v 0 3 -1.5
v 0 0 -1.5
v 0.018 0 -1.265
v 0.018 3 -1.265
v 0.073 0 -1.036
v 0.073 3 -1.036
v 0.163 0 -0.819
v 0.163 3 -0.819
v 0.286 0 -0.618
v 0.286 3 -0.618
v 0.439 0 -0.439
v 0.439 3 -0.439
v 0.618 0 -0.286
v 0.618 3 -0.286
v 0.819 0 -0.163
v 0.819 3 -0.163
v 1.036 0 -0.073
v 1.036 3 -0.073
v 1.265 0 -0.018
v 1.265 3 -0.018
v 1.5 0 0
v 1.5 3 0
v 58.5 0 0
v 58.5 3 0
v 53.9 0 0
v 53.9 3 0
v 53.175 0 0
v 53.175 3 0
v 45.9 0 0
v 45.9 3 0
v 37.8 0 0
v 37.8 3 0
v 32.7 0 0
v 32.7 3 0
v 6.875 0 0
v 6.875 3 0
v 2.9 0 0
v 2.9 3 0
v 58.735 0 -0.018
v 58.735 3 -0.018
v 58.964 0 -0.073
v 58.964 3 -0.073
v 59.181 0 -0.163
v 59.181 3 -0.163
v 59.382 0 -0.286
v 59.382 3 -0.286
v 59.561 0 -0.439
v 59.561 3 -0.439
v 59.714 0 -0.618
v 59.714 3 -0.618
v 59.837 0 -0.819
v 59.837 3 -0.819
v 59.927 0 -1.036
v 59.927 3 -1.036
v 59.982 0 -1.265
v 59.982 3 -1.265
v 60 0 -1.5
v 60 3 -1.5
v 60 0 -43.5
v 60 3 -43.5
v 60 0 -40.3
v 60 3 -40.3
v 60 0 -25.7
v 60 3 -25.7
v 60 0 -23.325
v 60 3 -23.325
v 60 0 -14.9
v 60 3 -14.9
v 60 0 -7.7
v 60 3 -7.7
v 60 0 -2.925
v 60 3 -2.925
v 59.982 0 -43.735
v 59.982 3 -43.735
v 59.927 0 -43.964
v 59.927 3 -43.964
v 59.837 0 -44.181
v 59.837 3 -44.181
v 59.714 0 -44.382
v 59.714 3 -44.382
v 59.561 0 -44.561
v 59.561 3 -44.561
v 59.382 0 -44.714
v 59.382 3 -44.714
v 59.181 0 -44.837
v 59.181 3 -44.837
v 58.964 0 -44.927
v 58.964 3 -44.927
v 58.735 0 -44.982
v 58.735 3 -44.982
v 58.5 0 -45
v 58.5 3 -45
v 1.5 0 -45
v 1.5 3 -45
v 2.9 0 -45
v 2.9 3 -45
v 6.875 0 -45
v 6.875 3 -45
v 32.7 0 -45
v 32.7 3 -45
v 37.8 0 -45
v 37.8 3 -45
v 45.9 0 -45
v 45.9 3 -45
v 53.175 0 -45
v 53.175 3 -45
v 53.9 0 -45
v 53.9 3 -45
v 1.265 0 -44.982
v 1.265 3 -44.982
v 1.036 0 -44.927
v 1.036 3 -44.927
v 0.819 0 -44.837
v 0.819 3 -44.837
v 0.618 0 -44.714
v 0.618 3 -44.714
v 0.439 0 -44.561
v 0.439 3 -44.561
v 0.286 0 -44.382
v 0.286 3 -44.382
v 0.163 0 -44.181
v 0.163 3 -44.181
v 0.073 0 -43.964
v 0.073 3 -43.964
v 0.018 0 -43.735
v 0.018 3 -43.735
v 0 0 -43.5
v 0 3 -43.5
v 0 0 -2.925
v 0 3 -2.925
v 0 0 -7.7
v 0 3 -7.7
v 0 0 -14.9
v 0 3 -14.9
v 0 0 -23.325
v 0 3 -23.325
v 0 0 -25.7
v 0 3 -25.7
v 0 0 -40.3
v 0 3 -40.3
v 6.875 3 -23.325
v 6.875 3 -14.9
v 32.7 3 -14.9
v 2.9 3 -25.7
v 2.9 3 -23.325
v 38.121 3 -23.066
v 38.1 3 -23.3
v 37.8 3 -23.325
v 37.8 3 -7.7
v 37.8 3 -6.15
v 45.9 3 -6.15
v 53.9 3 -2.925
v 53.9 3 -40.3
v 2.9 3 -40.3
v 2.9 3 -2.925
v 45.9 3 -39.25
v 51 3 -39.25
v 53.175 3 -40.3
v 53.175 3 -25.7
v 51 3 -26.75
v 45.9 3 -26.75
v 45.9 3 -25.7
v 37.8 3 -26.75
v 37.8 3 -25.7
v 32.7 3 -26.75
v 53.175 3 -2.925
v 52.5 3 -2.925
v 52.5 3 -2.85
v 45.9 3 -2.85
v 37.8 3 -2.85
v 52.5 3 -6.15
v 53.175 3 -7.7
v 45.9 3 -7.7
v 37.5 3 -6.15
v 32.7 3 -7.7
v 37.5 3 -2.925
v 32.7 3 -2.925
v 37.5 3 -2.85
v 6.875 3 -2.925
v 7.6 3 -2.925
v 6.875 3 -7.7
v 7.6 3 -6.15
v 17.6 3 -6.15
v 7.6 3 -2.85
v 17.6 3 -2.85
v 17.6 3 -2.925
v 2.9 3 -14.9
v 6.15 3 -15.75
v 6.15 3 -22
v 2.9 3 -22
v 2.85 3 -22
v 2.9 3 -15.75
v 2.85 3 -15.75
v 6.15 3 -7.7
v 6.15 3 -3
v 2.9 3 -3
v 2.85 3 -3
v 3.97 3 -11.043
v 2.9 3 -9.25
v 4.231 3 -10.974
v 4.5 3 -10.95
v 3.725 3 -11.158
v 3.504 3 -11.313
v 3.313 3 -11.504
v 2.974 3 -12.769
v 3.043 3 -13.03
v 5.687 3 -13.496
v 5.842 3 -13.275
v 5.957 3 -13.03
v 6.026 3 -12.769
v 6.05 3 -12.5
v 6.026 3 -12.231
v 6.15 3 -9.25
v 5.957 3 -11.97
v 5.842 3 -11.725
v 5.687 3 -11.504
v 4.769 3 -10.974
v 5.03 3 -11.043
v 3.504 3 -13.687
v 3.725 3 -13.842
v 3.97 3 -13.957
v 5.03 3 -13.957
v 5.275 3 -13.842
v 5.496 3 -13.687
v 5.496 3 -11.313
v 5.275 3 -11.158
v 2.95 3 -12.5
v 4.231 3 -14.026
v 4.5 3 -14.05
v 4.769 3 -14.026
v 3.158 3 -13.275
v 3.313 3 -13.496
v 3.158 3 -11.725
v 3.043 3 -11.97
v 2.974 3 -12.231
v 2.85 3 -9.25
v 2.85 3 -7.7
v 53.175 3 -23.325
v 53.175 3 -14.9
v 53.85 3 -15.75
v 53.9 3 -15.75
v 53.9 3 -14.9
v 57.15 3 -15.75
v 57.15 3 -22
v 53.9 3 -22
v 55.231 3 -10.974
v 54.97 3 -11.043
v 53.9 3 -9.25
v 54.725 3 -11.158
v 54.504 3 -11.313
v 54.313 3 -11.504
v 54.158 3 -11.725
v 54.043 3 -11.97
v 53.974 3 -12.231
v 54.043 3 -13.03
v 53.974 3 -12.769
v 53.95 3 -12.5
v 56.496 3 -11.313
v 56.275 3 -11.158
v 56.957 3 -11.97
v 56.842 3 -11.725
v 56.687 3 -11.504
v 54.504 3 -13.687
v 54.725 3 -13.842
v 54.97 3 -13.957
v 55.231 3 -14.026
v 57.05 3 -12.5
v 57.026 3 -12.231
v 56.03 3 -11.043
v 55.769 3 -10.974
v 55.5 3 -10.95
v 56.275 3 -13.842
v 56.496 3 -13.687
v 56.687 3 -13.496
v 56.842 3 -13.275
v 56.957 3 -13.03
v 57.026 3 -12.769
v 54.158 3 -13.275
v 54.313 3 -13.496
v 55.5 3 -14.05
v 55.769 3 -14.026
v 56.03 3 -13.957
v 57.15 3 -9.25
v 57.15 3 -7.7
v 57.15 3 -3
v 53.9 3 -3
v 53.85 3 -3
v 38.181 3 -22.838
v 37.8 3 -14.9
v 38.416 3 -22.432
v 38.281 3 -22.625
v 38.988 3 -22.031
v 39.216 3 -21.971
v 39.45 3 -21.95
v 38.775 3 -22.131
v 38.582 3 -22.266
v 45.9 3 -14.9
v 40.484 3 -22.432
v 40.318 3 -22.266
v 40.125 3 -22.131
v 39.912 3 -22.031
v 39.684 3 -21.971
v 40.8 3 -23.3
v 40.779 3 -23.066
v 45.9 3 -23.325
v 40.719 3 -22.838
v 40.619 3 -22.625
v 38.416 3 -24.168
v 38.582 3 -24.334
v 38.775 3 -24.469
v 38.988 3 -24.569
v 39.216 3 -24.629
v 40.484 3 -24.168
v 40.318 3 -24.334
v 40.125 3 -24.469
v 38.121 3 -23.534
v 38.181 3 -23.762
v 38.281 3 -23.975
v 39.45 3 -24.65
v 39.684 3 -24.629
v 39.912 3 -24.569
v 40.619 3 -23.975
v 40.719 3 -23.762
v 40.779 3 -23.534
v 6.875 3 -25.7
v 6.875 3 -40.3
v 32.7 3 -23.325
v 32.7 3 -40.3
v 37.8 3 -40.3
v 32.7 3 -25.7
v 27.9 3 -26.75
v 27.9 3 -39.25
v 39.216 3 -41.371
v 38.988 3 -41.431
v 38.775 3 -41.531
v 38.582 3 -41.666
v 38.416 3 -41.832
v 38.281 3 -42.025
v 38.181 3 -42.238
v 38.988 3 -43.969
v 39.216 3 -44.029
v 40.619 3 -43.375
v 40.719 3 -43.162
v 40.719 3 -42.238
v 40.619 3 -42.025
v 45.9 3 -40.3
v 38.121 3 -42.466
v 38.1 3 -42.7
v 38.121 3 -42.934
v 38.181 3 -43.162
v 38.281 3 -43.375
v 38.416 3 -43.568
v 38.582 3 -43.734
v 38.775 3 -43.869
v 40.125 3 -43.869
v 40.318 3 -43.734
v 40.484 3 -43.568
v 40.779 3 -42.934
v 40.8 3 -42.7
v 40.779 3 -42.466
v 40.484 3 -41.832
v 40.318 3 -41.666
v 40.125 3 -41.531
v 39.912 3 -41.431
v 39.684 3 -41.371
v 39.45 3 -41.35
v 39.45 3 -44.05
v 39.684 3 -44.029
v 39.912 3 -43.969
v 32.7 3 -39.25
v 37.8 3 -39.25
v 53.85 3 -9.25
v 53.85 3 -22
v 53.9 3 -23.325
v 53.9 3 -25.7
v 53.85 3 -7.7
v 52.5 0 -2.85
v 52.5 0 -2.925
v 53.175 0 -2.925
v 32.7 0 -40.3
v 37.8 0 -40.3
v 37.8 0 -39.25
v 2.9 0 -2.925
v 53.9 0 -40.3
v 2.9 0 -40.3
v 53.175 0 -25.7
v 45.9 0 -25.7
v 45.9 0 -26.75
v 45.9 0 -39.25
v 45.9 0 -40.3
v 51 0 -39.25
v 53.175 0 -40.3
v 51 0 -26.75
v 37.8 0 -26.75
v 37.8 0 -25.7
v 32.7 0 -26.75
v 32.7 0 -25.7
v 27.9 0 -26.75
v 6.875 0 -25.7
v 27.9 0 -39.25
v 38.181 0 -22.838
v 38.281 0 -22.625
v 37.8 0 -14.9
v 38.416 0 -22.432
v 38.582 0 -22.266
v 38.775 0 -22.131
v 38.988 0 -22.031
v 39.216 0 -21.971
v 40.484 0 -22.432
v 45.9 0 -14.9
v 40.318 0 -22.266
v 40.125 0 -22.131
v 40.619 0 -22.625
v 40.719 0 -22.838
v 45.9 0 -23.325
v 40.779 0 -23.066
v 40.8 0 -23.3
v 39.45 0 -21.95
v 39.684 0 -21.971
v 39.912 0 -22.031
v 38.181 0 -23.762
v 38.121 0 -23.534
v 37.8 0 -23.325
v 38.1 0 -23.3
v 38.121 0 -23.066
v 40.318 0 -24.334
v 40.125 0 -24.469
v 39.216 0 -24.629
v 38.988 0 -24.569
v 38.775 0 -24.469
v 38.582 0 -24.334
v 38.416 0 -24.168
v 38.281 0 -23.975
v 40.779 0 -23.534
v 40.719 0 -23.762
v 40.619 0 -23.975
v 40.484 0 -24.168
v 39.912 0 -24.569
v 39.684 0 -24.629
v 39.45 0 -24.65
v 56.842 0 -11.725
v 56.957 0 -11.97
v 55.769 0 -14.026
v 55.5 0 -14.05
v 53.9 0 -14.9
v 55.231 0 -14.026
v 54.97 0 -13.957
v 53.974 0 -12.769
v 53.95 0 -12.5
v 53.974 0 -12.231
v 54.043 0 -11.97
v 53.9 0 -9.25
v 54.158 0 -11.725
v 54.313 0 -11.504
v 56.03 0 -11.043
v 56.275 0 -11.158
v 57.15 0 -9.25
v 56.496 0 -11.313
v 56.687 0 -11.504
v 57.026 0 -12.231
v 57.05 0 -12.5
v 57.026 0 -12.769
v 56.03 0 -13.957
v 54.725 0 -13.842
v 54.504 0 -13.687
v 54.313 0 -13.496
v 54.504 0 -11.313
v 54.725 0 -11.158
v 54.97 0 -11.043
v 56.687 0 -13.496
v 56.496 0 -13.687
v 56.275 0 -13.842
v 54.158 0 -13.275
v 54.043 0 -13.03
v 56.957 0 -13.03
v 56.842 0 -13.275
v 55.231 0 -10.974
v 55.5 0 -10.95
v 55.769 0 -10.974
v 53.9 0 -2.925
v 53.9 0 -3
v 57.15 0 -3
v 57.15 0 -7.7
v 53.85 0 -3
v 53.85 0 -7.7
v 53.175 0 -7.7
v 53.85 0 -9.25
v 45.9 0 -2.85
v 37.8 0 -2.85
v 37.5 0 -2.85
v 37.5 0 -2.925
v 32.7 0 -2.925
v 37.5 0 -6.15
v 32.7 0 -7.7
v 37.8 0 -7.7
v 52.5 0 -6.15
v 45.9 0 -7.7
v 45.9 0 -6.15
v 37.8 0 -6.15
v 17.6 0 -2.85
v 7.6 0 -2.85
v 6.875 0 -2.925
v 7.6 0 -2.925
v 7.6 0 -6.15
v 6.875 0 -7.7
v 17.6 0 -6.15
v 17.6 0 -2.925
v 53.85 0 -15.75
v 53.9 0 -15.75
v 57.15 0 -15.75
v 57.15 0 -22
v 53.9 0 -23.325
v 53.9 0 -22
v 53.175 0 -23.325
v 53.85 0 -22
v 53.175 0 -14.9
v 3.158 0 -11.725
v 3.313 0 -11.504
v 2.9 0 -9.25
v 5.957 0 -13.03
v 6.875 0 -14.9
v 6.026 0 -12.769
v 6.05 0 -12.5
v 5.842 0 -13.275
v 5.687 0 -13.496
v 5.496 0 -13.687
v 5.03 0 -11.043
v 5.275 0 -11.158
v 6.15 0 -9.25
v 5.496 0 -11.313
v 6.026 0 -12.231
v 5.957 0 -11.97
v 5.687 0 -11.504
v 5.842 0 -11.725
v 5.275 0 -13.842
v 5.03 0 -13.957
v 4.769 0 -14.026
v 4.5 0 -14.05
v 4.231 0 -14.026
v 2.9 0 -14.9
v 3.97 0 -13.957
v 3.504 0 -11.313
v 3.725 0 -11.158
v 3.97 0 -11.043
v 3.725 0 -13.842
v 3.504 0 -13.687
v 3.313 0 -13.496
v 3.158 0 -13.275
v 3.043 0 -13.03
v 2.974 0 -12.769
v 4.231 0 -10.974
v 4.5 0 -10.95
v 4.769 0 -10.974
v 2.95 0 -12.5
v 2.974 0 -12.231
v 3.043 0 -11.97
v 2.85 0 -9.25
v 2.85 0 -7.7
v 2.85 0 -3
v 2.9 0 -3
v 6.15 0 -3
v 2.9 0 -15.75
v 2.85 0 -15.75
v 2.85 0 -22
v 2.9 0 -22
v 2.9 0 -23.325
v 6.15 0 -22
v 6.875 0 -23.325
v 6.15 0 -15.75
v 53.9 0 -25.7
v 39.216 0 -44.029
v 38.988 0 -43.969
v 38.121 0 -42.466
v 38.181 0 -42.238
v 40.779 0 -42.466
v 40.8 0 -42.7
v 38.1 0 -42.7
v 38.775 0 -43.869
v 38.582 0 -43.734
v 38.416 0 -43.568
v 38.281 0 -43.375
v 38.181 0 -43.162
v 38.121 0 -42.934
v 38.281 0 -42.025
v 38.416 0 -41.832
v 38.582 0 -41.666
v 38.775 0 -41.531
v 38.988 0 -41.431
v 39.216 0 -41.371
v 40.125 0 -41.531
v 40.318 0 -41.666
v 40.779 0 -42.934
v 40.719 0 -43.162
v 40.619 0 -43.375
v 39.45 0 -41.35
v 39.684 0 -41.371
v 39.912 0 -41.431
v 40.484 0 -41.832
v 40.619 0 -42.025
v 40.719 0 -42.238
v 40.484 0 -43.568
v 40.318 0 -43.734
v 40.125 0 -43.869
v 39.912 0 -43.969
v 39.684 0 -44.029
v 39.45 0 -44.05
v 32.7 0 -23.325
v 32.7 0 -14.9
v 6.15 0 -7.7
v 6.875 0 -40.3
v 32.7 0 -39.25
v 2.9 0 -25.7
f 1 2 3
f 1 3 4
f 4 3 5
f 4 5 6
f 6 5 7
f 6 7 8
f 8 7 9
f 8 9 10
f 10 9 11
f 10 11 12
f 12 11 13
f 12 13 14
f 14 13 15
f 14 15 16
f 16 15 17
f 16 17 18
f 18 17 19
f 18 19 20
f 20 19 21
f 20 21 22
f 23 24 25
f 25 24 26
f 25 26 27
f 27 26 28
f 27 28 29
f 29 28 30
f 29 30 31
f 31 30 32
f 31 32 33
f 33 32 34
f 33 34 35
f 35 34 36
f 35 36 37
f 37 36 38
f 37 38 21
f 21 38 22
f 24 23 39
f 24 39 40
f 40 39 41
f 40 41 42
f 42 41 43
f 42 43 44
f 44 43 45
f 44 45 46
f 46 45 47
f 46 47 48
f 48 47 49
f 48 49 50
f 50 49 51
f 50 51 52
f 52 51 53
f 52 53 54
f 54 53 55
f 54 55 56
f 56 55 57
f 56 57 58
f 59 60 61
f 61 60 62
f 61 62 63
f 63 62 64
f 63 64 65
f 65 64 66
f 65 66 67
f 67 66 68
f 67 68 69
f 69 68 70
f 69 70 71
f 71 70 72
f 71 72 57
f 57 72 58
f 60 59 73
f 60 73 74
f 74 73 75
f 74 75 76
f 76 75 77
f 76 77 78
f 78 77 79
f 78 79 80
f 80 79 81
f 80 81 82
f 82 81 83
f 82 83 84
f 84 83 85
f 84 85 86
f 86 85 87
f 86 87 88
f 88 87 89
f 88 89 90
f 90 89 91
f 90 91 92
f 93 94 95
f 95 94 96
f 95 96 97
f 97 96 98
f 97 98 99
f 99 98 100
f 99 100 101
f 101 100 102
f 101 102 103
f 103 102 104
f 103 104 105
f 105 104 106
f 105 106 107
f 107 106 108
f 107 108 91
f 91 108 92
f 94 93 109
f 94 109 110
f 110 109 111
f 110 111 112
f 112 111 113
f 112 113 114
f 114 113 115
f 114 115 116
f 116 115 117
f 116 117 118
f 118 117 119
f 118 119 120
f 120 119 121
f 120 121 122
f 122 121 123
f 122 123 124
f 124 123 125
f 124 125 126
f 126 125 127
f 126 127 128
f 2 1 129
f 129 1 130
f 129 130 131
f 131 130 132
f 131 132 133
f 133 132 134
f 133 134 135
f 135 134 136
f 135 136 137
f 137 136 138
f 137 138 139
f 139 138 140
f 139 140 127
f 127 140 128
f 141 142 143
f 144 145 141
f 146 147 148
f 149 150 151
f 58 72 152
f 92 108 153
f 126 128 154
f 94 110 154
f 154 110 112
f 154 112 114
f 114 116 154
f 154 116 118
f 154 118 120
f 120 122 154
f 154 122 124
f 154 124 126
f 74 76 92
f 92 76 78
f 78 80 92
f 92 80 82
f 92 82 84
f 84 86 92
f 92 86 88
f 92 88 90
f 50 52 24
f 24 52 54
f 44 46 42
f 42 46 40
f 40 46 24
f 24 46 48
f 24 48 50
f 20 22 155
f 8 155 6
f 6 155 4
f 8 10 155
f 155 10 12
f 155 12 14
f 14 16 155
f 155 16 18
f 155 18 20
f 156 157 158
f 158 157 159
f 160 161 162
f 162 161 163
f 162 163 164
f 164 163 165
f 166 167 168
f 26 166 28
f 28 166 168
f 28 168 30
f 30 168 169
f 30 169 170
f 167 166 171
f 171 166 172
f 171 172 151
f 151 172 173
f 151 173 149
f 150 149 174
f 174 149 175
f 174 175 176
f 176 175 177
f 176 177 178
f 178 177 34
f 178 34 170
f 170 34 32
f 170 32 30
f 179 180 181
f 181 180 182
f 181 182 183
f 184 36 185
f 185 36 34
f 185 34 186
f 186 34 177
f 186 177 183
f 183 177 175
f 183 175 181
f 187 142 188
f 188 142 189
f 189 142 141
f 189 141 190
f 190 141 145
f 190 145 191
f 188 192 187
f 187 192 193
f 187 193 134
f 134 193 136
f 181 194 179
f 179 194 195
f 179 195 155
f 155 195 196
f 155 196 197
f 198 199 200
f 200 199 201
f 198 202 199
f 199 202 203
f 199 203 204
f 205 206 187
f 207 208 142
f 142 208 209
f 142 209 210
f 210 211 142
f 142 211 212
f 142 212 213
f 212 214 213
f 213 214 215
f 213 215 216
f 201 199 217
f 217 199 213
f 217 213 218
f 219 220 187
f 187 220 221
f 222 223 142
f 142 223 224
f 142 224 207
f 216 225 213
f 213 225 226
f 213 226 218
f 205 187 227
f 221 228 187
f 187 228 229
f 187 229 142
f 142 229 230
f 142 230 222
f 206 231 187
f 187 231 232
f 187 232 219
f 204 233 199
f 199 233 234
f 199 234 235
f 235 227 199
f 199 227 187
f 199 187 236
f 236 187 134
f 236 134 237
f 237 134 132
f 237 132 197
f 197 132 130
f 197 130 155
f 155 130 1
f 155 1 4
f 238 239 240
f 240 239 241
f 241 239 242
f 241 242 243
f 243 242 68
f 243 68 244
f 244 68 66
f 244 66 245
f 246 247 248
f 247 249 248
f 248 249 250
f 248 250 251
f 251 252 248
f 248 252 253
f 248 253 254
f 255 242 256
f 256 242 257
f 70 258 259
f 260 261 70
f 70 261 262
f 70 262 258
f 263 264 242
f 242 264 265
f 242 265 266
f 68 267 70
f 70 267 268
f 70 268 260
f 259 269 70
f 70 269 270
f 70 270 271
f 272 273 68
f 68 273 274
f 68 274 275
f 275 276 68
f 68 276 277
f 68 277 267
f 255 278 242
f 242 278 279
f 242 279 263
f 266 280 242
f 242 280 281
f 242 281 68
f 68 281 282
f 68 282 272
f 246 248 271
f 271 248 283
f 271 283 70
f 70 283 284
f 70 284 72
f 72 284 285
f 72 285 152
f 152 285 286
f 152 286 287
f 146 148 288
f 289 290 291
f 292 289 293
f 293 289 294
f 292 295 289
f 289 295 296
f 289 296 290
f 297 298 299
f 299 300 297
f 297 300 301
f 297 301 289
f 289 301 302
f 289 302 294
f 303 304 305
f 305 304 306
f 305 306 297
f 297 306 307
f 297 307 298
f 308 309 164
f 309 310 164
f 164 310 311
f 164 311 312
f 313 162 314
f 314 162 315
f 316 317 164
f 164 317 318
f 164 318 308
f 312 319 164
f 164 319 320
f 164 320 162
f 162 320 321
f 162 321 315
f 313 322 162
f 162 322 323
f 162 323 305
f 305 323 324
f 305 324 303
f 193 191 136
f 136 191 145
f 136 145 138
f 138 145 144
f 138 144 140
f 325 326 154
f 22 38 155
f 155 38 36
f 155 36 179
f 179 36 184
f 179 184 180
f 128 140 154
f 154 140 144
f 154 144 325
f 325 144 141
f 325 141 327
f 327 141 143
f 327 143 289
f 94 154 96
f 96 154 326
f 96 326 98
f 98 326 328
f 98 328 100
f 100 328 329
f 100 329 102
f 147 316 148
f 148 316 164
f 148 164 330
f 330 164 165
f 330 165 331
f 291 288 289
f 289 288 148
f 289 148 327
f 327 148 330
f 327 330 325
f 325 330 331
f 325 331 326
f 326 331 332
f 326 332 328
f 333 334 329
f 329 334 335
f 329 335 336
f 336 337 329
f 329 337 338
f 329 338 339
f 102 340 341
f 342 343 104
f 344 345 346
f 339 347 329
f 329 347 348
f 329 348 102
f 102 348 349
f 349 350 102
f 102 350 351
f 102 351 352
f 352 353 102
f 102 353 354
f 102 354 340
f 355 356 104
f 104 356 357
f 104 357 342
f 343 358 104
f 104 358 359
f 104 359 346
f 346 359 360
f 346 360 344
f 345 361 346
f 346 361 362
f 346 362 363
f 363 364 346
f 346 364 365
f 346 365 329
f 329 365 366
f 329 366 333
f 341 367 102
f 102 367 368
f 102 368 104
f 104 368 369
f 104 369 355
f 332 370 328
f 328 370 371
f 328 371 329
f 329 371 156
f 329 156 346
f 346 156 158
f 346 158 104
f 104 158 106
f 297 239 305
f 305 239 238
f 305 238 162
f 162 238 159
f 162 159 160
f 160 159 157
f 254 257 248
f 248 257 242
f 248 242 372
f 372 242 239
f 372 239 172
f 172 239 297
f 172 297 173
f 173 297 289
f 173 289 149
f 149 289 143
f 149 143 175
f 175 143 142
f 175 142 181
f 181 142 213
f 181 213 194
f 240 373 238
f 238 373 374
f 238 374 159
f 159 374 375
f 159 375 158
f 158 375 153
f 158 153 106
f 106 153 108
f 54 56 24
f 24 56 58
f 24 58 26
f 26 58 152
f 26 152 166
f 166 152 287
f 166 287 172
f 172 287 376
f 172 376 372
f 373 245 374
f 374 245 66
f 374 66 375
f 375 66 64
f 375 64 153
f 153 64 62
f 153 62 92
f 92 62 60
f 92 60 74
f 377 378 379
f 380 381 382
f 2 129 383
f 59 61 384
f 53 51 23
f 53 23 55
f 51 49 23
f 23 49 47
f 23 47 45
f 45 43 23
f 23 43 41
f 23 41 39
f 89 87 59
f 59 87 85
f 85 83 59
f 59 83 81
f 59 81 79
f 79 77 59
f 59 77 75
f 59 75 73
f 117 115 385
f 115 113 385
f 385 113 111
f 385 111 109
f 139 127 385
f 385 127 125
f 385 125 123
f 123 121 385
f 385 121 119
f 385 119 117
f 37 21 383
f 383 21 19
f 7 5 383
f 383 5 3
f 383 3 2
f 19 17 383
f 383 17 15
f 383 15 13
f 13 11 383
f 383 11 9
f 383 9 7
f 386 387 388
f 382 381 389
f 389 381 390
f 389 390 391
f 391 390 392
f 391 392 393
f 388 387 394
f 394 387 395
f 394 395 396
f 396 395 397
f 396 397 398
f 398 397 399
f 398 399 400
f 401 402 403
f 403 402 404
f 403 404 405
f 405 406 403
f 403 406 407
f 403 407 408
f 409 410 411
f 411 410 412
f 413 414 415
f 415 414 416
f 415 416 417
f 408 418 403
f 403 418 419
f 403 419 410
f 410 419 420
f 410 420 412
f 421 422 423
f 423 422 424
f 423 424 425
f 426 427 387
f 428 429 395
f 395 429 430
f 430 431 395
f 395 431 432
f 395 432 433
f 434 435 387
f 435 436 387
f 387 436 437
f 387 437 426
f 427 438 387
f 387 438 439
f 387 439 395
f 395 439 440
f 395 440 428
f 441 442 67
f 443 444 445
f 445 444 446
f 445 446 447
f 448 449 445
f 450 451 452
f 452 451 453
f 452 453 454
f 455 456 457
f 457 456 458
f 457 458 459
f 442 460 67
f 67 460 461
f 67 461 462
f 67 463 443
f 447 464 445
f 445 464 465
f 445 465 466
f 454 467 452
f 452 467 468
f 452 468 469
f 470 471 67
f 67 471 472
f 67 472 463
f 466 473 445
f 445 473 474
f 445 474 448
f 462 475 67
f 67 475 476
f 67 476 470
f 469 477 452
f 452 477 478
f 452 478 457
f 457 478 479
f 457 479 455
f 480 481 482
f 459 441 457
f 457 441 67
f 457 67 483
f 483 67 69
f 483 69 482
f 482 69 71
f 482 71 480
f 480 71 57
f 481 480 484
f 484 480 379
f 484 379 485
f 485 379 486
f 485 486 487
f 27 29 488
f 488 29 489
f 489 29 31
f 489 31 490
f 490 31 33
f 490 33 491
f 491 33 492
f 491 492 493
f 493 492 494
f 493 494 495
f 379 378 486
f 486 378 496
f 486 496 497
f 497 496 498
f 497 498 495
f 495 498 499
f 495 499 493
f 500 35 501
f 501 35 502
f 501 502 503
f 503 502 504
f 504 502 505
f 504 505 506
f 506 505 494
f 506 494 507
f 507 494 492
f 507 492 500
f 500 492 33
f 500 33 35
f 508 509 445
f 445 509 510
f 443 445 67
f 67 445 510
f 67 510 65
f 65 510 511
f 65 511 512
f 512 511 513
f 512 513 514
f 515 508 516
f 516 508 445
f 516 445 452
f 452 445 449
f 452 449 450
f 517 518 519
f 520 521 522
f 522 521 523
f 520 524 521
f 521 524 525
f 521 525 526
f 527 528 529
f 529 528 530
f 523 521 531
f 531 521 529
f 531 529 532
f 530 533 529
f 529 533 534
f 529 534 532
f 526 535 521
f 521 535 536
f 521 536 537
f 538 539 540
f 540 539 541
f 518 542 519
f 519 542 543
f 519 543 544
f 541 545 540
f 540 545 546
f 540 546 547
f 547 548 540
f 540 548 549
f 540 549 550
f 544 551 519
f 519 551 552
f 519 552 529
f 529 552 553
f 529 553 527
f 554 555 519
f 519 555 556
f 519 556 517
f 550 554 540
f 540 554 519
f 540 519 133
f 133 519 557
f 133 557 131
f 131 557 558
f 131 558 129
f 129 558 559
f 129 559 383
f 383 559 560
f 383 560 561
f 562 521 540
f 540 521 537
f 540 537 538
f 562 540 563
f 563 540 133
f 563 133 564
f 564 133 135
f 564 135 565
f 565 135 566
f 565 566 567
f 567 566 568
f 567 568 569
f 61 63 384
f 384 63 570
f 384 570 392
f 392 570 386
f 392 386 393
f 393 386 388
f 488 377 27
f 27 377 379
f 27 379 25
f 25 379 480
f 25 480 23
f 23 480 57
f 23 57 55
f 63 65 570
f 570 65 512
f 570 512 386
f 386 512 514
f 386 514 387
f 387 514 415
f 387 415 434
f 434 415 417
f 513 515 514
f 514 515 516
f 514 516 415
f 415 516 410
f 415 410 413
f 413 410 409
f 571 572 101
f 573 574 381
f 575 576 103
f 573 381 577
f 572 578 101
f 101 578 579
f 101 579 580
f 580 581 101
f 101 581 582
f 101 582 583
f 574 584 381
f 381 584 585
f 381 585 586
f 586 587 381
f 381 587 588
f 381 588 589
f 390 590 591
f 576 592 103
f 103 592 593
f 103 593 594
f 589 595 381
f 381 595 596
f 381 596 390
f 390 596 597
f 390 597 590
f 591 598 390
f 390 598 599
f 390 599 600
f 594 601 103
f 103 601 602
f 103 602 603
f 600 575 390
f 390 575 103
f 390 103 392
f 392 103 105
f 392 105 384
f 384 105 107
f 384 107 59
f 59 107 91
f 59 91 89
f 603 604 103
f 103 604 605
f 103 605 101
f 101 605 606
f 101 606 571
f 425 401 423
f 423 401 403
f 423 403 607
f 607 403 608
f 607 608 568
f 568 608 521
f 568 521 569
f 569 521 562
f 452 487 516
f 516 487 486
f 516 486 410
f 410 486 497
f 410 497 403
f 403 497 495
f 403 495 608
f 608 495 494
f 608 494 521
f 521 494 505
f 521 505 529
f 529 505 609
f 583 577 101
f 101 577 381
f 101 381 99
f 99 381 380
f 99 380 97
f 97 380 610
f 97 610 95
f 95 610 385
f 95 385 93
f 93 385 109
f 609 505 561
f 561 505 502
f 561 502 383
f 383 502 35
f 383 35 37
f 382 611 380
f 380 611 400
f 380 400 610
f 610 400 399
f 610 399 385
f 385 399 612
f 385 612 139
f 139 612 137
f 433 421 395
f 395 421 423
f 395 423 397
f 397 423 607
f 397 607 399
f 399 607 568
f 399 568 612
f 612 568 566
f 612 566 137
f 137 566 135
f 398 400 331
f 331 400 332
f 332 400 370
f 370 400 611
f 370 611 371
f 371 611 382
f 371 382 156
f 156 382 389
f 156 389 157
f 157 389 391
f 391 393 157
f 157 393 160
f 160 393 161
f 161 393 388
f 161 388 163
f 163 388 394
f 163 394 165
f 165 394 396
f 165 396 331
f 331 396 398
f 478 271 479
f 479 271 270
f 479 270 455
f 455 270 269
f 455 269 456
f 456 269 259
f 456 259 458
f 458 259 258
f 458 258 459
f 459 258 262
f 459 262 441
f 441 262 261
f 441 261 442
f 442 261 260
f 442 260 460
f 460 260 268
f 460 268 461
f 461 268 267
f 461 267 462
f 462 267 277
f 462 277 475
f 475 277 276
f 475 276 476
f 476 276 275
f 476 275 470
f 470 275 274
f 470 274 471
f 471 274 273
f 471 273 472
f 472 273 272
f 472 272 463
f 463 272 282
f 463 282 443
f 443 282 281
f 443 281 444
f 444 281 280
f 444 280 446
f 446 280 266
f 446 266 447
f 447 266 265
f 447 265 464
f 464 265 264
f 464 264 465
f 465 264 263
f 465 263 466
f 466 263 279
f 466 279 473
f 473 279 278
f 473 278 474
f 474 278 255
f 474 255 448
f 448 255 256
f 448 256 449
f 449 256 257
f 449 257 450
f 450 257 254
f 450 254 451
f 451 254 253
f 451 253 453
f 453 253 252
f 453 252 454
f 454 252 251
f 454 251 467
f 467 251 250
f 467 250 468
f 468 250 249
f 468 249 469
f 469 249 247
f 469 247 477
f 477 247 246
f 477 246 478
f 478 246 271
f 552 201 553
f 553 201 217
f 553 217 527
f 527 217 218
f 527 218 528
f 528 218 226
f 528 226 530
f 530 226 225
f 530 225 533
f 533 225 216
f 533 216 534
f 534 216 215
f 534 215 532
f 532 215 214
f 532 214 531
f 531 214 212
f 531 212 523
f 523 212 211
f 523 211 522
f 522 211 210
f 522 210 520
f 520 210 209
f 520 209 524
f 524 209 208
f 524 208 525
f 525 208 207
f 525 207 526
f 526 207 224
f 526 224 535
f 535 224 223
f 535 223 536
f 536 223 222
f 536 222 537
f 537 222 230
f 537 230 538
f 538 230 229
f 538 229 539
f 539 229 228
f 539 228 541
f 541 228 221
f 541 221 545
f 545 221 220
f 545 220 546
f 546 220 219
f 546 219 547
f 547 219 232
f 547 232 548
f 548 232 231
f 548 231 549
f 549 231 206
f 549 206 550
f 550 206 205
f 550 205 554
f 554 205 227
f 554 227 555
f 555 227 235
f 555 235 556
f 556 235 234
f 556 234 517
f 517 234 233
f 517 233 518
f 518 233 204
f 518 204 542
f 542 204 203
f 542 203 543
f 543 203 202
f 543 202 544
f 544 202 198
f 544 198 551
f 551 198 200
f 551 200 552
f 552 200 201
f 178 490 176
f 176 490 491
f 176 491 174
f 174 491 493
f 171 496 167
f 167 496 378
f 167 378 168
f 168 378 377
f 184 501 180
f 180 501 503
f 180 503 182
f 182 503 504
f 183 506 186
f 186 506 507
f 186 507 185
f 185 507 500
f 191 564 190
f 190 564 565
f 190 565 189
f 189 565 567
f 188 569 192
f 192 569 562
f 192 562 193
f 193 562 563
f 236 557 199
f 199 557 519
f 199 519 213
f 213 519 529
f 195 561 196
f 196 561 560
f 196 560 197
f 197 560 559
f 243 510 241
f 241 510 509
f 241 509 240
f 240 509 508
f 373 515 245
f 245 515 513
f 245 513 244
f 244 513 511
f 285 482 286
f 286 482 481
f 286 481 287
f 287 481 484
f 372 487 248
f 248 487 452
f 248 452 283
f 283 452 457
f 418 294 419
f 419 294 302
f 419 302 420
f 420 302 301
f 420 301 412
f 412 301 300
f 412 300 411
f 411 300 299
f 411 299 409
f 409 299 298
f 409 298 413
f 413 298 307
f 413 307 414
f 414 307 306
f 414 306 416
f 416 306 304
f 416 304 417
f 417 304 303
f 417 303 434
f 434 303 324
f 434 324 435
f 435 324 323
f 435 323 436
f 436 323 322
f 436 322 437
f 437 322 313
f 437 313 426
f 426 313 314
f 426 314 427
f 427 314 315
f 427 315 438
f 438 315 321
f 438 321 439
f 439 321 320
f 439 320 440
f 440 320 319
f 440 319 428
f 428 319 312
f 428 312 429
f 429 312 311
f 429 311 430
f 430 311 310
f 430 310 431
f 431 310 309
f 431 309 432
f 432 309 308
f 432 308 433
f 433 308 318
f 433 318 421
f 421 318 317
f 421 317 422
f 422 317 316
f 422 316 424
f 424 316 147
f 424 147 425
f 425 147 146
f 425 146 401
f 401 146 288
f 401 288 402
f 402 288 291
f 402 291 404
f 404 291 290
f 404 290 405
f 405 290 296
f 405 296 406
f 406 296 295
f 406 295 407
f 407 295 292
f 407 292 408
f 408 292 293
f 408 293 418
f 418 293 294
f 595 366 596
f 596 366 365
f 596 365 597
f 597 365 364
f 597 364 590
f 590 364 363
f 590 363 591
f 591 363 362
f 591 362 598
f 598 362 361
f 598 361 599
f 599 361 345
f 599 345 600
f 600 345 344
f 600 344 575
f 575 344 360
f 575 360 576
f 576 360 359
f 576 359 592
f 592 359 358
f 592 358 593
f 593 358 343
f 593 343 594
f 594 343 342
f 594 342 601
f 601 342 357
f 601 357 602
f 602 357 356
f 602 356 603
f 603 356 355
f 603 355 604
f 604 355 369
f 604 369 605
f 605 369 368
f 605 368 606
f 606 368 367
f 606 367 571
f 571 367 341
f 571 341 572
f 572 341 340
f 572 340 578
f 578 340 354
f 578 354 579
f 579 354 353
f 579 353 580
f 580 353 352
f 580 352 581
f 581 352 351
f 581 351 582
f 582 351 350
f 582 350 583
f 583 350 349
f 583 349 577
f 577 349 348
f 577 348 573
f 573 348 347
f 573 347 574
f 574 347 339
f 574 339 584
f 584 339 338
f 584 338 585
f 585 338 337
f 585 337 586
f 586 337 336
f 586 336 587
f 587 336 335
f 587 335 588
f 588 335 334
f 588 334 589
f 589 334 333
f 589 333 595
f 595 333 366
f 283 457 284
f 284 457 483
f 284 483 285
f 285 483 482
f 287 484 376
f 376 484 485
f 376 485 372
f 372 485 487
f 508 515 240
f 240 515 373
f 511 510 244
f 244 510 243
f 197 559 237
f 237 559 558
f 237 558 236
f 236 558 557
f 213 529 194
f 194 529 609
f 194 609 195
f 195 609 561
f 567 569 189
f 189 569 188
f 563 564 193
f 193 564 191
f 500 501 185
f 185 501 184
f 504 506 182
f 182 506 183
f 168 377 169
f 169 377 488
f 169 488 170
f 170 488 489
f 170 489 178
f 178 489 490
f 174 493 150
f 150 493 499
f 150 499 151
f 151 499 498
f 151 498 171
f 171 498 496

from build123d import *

# Parameters (mm, degrees)
BOSS_EXTRUDE1_DEPTH     = 3
SKETCH2_R               = 1.35
SKETCH2_R_2             = 1.55
SKETCH2_W               = 23.1
SKETCH2_H               = 12.5
SKETCH2_W_2             = 15
SKETCH2_H_2             = 3
SKETCH2_W_3             = 10
SKETCH2_W_4             = 3
SKETCH2_H_3             = 6.25
MAIN_HOLE_EXTRUDE_DEPTH = 4
SKETCH3_W               = 10
SKETCH3_H               = 0.15
SKETCH3_W_2             = 15
SKETCH3_W_3             = 0.15
SKETCH3_H_2             = 6.25
CLEARANCE_EXTRUDE_DEPTH = 4


with BuildPart() as part:
    # Sketch1 → Boss-Extrude1 (new body)
    with BuildSketch(Plane(origin=(0, 0, 0), x_dir=(1, 0, 0), z_dir=(0, 1, 0))):
        with BuildLine():
            Line((1.5, 0), (58.5, 0))
            ThreePointArc((58.5, 0), (59.560660172, 0.439339828), (60, 1.5))
            Line((60, 1.5), (60, 43.5))
            ThreePointArc((60, 43.5), (59.560660172, 44.560660172), (58.5, 45))
            Line((58.5, 45), (1.5, 45))
            ThreePointArc((1.5, 45), (0.439339828, 44.560660172), (0, 43.5))
            Line((0, 43.5), (0, 1.5))
            ThreePointArc((0, 1.5), (0.439339828, 0.439339828), (1.5, 0))
        make_face()
    extrude(amount=BOSS_EXTRUDE1_DEPTH)

    # Sketch2 → Main Hole Extrude (cut, through all)
    with BuildSketch(Plane(origin=(0, 3, 0), x_dir=(1, 0, 0), z_dir=(0, 1, 0))):
        with Locations((39.45, 23.3)):
            Circle(SKETCH2_R)
        with Locations((39.45, 42.7)):
            Circle(SKETCH2_R)
        with Locations((4.5, 12.5)):
            Circle(SKETCH2_R_2)
        with Locations((55.5, 12.5)):
            Circle(SKETCH2_R_2)
        with Locations((39.45, 33)):
            Rectangle(SKETCH2_W, SKETCH2_H)
        with Locations((45, 4.5)):
            Rectangle(SKETCH2_W_2, SKETCH2_H_2)
        with Locations((12.6, 4.5)):
            Rectangle(SKETCH2_W_3, SKETCH2_H_2)
        with Locations((4.5, 18.875)):
            Rectangle(SKETCH2_W_4, SKETCH2_H_3)
        with Locations((4.5, 6.125)):
            Rectangle(SKETCH2_W_4, SKETCH2_H_3)
        with Locations((55.5, 18.875)):
            Rectangle(SKETCH2_W_4, SKETCH2_H_3)
        with Locations((55.5, 6.125)):
            Rectangle(SKETCH2_W_4, SKETCH2_H_3)
    extrude(amount=-MAIN_HOLE_EXTRUDE_DEPTH, mode=Mode.SUBTRACT)

    # Sketch3 → Clearance Extrude (cut, through all)
    with BuildSketch(Plane(origin=(0, 3, 0), x_dir=(1, 0, 0), z_dir=(0, 1, 0))):
        with Locations((12.6, 6.075)):
            Rectangle(SKETCH3_W, SKETCH3_H)
        with Locations((12.6, 2.925)):
            Rectangle(SKETCH3_W, SKETCH3_H)
        with Locations((45, 6.075)):
            Rectangle(SKETCH3_W_2, SKETCH3_H)
        with Locations((45, 2.925)):
            Rectangle(SKETCH3_W_2, SKETCH3_H)
        with Locations((6.075, 18.875)):
            Rectangle(SKETCH3_W_3, SKETCH3_H_2)
        with Locations((2.925, 18.875)):
            Rectangle(SKETCH3_W_3, SKETCH3_H_2)
        with Locations((6.075, 6.125)):
            Rectangle(SKETCH3_W_3, SKETCH3_H_2)
        with Locations((2.925, 6.125)):
            Rectangle(SKETCH3_W_3, SKETCH3_H_2)
        with Locations((53.925, 18.875)):
            Rectangle(SKETCH3_W_3, SKETCH3_H_2)
        with Locations((57.075, 18.875)):
            Rectangle(SKETCH3_W_3, SKETCH3_H_2)
        with Locations((57.075, 6.125)):
            Rectangle(SKETCH3_W_3, SKETCH3_H_2)
        with Locations((53.925, 6.125)):
            Rectangle(SKETCH3_W_3, SKETCH3_H_2)
    extrude(amount=-CLEARANCE_EXTRUDE_DEPTH, mode=Mode.SUBTRACT)


solid = part.part
